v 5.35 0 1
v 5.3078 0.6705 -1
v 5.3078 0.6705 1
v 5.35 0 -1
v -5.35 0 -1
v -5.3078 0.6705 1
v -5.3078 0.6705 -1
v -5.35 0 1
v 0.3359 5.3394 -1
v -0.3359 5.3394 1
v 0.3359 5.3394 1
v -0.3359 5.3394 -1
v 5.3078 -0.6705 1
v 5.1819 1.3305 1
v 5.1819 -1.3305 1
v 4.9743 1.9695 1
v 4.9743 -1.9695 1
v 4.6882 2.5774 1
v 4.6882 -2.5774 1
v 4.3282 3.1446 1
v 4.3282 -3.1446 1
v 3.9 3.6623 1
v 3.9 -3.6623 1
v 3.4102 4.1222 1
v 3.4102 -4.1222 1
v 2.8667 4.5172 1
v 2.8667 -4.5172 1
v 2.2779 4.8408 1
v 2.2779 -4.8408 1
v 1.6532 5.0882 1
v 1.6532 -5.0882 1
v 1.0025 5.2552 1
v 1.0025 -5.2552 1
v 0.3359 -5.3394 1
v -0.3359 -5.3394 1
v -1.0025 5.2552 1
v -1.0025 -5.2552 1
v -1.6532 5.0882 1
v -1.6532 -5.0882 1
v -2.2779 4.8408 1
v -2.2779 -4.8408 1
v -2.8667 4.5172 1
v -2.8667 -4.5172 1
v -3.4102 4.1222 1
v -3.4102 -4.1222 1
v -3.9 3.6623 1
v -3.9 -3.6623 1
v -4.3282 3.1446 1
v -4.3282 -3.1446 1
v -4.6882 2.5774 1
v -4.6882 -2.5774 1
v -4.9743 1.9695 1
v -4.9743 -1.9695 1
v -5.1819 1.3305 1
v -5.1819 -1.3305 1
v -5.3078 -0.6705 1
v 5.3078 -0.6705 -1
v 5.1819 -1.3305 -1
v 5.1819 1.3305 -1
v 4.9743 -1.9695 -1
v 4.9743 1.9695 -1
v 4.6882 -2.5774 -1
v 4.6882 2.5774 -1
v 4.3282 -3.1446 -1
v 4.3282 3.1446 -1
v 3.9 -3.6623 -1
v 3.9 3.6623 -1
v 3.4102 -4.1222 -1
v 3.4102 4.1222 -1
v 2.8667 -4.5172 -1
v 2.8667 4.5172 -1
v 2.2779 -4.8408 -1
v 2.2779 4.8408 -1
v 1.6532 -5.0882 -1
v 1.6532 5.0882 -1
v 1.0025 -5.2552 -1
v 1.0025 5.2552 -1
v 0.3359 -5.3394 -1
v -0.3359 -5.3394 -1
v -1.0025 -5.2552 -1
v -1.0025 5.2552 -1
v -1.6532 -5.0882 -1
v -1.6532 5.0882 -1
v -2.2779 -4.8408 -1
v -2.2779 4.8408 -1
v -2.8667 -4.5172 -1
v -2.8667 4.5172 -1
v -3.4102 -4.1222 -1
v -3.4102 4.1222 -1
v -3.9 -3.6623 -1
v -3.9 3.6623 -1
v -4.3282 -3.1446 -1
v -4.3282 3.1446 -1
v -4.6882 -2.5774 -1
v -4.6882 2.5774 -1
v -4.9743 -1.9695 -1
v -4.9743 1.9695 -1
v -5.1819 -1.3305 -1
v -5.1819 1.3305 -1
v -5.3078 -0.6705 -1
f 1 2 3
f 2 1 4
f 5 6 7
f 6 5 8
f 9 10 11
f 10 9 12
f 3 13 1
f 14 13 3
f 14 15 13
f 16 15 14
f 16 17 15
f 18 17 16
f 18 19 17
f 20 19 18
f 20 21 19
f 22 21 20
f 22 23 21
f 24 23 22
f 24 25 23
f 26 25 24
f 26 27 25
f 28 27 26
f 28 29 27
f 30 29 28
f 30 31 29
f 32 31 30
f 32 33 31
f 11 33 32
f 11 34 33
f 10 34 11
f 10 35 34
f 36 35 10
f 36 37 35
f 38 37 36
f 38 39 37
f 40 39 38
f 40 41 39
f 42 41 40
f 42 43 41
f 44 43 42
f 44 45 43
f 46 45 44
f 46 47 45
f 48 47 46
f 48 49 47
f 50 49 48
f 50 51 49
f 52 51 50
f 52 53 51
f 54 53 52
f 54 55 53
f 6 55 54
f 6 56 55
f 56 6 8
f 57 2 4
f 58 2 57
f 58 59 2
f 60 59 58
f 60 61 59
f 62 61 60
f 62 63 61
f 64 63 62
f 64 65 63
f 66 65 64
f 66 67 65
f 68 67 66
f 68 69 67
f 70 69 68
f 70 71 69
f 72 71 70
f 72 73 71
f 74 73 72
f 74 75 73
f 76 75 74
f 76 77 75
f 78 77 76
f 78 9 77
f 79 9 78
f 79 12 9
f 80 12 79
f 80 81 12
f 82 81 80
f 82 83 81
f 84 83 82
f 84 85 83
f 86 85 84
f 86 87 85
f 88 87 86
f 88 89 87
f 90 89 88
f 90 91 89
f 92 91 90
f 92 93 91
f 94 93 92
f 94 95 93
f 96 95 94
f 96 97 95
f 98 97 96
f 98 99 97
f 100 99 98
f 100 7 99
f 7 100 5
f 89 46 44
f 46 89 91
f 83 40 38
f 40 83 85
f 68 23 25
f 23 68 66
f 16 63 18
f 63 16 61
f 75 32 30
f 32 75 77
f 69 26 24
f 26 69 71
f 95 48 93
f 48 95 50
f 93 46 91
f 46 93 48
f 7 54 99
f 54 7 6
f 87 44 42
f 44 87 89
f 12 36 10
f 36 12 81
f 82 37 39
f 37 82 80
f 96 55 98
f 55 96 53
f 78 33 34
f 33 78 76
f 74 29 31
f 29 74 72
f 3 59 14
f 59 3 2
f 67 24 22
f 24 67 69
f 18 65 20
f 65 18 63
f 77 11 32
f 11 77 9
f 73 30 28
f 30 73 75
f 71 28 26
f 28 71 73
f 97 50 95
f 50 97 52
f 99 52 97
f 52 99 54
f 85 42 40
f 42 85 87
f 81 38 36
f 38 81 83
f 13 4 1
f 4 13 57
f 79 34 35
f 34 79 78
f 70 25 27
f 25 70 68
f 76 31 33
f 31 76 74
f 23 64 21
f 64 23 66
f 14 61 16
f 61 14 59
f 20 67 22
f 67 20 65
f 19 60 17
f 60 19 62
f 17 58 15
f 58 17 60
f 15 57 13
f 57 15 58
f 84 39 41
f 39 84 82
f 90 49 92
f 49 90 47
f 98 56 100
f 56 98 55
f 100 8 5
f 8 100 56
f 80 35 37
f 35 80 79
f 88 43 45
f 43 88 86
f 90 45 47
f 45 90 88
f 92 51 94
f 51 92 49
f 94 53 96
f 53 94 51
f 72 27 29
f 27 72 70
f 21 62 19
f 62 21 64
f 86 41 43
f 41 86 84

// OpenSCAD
$fn = 50;


difference() {
	union() {
		translate(v = [0, 0, -1.0000000000]) {
			cylinder(h = 2, r = 5.3500000000);
		}
	}
	union() {
		translate(v = [0, 0, -100.0000000000]) {
			cylinder(h = 200, r = 0);
		}
	}
}
